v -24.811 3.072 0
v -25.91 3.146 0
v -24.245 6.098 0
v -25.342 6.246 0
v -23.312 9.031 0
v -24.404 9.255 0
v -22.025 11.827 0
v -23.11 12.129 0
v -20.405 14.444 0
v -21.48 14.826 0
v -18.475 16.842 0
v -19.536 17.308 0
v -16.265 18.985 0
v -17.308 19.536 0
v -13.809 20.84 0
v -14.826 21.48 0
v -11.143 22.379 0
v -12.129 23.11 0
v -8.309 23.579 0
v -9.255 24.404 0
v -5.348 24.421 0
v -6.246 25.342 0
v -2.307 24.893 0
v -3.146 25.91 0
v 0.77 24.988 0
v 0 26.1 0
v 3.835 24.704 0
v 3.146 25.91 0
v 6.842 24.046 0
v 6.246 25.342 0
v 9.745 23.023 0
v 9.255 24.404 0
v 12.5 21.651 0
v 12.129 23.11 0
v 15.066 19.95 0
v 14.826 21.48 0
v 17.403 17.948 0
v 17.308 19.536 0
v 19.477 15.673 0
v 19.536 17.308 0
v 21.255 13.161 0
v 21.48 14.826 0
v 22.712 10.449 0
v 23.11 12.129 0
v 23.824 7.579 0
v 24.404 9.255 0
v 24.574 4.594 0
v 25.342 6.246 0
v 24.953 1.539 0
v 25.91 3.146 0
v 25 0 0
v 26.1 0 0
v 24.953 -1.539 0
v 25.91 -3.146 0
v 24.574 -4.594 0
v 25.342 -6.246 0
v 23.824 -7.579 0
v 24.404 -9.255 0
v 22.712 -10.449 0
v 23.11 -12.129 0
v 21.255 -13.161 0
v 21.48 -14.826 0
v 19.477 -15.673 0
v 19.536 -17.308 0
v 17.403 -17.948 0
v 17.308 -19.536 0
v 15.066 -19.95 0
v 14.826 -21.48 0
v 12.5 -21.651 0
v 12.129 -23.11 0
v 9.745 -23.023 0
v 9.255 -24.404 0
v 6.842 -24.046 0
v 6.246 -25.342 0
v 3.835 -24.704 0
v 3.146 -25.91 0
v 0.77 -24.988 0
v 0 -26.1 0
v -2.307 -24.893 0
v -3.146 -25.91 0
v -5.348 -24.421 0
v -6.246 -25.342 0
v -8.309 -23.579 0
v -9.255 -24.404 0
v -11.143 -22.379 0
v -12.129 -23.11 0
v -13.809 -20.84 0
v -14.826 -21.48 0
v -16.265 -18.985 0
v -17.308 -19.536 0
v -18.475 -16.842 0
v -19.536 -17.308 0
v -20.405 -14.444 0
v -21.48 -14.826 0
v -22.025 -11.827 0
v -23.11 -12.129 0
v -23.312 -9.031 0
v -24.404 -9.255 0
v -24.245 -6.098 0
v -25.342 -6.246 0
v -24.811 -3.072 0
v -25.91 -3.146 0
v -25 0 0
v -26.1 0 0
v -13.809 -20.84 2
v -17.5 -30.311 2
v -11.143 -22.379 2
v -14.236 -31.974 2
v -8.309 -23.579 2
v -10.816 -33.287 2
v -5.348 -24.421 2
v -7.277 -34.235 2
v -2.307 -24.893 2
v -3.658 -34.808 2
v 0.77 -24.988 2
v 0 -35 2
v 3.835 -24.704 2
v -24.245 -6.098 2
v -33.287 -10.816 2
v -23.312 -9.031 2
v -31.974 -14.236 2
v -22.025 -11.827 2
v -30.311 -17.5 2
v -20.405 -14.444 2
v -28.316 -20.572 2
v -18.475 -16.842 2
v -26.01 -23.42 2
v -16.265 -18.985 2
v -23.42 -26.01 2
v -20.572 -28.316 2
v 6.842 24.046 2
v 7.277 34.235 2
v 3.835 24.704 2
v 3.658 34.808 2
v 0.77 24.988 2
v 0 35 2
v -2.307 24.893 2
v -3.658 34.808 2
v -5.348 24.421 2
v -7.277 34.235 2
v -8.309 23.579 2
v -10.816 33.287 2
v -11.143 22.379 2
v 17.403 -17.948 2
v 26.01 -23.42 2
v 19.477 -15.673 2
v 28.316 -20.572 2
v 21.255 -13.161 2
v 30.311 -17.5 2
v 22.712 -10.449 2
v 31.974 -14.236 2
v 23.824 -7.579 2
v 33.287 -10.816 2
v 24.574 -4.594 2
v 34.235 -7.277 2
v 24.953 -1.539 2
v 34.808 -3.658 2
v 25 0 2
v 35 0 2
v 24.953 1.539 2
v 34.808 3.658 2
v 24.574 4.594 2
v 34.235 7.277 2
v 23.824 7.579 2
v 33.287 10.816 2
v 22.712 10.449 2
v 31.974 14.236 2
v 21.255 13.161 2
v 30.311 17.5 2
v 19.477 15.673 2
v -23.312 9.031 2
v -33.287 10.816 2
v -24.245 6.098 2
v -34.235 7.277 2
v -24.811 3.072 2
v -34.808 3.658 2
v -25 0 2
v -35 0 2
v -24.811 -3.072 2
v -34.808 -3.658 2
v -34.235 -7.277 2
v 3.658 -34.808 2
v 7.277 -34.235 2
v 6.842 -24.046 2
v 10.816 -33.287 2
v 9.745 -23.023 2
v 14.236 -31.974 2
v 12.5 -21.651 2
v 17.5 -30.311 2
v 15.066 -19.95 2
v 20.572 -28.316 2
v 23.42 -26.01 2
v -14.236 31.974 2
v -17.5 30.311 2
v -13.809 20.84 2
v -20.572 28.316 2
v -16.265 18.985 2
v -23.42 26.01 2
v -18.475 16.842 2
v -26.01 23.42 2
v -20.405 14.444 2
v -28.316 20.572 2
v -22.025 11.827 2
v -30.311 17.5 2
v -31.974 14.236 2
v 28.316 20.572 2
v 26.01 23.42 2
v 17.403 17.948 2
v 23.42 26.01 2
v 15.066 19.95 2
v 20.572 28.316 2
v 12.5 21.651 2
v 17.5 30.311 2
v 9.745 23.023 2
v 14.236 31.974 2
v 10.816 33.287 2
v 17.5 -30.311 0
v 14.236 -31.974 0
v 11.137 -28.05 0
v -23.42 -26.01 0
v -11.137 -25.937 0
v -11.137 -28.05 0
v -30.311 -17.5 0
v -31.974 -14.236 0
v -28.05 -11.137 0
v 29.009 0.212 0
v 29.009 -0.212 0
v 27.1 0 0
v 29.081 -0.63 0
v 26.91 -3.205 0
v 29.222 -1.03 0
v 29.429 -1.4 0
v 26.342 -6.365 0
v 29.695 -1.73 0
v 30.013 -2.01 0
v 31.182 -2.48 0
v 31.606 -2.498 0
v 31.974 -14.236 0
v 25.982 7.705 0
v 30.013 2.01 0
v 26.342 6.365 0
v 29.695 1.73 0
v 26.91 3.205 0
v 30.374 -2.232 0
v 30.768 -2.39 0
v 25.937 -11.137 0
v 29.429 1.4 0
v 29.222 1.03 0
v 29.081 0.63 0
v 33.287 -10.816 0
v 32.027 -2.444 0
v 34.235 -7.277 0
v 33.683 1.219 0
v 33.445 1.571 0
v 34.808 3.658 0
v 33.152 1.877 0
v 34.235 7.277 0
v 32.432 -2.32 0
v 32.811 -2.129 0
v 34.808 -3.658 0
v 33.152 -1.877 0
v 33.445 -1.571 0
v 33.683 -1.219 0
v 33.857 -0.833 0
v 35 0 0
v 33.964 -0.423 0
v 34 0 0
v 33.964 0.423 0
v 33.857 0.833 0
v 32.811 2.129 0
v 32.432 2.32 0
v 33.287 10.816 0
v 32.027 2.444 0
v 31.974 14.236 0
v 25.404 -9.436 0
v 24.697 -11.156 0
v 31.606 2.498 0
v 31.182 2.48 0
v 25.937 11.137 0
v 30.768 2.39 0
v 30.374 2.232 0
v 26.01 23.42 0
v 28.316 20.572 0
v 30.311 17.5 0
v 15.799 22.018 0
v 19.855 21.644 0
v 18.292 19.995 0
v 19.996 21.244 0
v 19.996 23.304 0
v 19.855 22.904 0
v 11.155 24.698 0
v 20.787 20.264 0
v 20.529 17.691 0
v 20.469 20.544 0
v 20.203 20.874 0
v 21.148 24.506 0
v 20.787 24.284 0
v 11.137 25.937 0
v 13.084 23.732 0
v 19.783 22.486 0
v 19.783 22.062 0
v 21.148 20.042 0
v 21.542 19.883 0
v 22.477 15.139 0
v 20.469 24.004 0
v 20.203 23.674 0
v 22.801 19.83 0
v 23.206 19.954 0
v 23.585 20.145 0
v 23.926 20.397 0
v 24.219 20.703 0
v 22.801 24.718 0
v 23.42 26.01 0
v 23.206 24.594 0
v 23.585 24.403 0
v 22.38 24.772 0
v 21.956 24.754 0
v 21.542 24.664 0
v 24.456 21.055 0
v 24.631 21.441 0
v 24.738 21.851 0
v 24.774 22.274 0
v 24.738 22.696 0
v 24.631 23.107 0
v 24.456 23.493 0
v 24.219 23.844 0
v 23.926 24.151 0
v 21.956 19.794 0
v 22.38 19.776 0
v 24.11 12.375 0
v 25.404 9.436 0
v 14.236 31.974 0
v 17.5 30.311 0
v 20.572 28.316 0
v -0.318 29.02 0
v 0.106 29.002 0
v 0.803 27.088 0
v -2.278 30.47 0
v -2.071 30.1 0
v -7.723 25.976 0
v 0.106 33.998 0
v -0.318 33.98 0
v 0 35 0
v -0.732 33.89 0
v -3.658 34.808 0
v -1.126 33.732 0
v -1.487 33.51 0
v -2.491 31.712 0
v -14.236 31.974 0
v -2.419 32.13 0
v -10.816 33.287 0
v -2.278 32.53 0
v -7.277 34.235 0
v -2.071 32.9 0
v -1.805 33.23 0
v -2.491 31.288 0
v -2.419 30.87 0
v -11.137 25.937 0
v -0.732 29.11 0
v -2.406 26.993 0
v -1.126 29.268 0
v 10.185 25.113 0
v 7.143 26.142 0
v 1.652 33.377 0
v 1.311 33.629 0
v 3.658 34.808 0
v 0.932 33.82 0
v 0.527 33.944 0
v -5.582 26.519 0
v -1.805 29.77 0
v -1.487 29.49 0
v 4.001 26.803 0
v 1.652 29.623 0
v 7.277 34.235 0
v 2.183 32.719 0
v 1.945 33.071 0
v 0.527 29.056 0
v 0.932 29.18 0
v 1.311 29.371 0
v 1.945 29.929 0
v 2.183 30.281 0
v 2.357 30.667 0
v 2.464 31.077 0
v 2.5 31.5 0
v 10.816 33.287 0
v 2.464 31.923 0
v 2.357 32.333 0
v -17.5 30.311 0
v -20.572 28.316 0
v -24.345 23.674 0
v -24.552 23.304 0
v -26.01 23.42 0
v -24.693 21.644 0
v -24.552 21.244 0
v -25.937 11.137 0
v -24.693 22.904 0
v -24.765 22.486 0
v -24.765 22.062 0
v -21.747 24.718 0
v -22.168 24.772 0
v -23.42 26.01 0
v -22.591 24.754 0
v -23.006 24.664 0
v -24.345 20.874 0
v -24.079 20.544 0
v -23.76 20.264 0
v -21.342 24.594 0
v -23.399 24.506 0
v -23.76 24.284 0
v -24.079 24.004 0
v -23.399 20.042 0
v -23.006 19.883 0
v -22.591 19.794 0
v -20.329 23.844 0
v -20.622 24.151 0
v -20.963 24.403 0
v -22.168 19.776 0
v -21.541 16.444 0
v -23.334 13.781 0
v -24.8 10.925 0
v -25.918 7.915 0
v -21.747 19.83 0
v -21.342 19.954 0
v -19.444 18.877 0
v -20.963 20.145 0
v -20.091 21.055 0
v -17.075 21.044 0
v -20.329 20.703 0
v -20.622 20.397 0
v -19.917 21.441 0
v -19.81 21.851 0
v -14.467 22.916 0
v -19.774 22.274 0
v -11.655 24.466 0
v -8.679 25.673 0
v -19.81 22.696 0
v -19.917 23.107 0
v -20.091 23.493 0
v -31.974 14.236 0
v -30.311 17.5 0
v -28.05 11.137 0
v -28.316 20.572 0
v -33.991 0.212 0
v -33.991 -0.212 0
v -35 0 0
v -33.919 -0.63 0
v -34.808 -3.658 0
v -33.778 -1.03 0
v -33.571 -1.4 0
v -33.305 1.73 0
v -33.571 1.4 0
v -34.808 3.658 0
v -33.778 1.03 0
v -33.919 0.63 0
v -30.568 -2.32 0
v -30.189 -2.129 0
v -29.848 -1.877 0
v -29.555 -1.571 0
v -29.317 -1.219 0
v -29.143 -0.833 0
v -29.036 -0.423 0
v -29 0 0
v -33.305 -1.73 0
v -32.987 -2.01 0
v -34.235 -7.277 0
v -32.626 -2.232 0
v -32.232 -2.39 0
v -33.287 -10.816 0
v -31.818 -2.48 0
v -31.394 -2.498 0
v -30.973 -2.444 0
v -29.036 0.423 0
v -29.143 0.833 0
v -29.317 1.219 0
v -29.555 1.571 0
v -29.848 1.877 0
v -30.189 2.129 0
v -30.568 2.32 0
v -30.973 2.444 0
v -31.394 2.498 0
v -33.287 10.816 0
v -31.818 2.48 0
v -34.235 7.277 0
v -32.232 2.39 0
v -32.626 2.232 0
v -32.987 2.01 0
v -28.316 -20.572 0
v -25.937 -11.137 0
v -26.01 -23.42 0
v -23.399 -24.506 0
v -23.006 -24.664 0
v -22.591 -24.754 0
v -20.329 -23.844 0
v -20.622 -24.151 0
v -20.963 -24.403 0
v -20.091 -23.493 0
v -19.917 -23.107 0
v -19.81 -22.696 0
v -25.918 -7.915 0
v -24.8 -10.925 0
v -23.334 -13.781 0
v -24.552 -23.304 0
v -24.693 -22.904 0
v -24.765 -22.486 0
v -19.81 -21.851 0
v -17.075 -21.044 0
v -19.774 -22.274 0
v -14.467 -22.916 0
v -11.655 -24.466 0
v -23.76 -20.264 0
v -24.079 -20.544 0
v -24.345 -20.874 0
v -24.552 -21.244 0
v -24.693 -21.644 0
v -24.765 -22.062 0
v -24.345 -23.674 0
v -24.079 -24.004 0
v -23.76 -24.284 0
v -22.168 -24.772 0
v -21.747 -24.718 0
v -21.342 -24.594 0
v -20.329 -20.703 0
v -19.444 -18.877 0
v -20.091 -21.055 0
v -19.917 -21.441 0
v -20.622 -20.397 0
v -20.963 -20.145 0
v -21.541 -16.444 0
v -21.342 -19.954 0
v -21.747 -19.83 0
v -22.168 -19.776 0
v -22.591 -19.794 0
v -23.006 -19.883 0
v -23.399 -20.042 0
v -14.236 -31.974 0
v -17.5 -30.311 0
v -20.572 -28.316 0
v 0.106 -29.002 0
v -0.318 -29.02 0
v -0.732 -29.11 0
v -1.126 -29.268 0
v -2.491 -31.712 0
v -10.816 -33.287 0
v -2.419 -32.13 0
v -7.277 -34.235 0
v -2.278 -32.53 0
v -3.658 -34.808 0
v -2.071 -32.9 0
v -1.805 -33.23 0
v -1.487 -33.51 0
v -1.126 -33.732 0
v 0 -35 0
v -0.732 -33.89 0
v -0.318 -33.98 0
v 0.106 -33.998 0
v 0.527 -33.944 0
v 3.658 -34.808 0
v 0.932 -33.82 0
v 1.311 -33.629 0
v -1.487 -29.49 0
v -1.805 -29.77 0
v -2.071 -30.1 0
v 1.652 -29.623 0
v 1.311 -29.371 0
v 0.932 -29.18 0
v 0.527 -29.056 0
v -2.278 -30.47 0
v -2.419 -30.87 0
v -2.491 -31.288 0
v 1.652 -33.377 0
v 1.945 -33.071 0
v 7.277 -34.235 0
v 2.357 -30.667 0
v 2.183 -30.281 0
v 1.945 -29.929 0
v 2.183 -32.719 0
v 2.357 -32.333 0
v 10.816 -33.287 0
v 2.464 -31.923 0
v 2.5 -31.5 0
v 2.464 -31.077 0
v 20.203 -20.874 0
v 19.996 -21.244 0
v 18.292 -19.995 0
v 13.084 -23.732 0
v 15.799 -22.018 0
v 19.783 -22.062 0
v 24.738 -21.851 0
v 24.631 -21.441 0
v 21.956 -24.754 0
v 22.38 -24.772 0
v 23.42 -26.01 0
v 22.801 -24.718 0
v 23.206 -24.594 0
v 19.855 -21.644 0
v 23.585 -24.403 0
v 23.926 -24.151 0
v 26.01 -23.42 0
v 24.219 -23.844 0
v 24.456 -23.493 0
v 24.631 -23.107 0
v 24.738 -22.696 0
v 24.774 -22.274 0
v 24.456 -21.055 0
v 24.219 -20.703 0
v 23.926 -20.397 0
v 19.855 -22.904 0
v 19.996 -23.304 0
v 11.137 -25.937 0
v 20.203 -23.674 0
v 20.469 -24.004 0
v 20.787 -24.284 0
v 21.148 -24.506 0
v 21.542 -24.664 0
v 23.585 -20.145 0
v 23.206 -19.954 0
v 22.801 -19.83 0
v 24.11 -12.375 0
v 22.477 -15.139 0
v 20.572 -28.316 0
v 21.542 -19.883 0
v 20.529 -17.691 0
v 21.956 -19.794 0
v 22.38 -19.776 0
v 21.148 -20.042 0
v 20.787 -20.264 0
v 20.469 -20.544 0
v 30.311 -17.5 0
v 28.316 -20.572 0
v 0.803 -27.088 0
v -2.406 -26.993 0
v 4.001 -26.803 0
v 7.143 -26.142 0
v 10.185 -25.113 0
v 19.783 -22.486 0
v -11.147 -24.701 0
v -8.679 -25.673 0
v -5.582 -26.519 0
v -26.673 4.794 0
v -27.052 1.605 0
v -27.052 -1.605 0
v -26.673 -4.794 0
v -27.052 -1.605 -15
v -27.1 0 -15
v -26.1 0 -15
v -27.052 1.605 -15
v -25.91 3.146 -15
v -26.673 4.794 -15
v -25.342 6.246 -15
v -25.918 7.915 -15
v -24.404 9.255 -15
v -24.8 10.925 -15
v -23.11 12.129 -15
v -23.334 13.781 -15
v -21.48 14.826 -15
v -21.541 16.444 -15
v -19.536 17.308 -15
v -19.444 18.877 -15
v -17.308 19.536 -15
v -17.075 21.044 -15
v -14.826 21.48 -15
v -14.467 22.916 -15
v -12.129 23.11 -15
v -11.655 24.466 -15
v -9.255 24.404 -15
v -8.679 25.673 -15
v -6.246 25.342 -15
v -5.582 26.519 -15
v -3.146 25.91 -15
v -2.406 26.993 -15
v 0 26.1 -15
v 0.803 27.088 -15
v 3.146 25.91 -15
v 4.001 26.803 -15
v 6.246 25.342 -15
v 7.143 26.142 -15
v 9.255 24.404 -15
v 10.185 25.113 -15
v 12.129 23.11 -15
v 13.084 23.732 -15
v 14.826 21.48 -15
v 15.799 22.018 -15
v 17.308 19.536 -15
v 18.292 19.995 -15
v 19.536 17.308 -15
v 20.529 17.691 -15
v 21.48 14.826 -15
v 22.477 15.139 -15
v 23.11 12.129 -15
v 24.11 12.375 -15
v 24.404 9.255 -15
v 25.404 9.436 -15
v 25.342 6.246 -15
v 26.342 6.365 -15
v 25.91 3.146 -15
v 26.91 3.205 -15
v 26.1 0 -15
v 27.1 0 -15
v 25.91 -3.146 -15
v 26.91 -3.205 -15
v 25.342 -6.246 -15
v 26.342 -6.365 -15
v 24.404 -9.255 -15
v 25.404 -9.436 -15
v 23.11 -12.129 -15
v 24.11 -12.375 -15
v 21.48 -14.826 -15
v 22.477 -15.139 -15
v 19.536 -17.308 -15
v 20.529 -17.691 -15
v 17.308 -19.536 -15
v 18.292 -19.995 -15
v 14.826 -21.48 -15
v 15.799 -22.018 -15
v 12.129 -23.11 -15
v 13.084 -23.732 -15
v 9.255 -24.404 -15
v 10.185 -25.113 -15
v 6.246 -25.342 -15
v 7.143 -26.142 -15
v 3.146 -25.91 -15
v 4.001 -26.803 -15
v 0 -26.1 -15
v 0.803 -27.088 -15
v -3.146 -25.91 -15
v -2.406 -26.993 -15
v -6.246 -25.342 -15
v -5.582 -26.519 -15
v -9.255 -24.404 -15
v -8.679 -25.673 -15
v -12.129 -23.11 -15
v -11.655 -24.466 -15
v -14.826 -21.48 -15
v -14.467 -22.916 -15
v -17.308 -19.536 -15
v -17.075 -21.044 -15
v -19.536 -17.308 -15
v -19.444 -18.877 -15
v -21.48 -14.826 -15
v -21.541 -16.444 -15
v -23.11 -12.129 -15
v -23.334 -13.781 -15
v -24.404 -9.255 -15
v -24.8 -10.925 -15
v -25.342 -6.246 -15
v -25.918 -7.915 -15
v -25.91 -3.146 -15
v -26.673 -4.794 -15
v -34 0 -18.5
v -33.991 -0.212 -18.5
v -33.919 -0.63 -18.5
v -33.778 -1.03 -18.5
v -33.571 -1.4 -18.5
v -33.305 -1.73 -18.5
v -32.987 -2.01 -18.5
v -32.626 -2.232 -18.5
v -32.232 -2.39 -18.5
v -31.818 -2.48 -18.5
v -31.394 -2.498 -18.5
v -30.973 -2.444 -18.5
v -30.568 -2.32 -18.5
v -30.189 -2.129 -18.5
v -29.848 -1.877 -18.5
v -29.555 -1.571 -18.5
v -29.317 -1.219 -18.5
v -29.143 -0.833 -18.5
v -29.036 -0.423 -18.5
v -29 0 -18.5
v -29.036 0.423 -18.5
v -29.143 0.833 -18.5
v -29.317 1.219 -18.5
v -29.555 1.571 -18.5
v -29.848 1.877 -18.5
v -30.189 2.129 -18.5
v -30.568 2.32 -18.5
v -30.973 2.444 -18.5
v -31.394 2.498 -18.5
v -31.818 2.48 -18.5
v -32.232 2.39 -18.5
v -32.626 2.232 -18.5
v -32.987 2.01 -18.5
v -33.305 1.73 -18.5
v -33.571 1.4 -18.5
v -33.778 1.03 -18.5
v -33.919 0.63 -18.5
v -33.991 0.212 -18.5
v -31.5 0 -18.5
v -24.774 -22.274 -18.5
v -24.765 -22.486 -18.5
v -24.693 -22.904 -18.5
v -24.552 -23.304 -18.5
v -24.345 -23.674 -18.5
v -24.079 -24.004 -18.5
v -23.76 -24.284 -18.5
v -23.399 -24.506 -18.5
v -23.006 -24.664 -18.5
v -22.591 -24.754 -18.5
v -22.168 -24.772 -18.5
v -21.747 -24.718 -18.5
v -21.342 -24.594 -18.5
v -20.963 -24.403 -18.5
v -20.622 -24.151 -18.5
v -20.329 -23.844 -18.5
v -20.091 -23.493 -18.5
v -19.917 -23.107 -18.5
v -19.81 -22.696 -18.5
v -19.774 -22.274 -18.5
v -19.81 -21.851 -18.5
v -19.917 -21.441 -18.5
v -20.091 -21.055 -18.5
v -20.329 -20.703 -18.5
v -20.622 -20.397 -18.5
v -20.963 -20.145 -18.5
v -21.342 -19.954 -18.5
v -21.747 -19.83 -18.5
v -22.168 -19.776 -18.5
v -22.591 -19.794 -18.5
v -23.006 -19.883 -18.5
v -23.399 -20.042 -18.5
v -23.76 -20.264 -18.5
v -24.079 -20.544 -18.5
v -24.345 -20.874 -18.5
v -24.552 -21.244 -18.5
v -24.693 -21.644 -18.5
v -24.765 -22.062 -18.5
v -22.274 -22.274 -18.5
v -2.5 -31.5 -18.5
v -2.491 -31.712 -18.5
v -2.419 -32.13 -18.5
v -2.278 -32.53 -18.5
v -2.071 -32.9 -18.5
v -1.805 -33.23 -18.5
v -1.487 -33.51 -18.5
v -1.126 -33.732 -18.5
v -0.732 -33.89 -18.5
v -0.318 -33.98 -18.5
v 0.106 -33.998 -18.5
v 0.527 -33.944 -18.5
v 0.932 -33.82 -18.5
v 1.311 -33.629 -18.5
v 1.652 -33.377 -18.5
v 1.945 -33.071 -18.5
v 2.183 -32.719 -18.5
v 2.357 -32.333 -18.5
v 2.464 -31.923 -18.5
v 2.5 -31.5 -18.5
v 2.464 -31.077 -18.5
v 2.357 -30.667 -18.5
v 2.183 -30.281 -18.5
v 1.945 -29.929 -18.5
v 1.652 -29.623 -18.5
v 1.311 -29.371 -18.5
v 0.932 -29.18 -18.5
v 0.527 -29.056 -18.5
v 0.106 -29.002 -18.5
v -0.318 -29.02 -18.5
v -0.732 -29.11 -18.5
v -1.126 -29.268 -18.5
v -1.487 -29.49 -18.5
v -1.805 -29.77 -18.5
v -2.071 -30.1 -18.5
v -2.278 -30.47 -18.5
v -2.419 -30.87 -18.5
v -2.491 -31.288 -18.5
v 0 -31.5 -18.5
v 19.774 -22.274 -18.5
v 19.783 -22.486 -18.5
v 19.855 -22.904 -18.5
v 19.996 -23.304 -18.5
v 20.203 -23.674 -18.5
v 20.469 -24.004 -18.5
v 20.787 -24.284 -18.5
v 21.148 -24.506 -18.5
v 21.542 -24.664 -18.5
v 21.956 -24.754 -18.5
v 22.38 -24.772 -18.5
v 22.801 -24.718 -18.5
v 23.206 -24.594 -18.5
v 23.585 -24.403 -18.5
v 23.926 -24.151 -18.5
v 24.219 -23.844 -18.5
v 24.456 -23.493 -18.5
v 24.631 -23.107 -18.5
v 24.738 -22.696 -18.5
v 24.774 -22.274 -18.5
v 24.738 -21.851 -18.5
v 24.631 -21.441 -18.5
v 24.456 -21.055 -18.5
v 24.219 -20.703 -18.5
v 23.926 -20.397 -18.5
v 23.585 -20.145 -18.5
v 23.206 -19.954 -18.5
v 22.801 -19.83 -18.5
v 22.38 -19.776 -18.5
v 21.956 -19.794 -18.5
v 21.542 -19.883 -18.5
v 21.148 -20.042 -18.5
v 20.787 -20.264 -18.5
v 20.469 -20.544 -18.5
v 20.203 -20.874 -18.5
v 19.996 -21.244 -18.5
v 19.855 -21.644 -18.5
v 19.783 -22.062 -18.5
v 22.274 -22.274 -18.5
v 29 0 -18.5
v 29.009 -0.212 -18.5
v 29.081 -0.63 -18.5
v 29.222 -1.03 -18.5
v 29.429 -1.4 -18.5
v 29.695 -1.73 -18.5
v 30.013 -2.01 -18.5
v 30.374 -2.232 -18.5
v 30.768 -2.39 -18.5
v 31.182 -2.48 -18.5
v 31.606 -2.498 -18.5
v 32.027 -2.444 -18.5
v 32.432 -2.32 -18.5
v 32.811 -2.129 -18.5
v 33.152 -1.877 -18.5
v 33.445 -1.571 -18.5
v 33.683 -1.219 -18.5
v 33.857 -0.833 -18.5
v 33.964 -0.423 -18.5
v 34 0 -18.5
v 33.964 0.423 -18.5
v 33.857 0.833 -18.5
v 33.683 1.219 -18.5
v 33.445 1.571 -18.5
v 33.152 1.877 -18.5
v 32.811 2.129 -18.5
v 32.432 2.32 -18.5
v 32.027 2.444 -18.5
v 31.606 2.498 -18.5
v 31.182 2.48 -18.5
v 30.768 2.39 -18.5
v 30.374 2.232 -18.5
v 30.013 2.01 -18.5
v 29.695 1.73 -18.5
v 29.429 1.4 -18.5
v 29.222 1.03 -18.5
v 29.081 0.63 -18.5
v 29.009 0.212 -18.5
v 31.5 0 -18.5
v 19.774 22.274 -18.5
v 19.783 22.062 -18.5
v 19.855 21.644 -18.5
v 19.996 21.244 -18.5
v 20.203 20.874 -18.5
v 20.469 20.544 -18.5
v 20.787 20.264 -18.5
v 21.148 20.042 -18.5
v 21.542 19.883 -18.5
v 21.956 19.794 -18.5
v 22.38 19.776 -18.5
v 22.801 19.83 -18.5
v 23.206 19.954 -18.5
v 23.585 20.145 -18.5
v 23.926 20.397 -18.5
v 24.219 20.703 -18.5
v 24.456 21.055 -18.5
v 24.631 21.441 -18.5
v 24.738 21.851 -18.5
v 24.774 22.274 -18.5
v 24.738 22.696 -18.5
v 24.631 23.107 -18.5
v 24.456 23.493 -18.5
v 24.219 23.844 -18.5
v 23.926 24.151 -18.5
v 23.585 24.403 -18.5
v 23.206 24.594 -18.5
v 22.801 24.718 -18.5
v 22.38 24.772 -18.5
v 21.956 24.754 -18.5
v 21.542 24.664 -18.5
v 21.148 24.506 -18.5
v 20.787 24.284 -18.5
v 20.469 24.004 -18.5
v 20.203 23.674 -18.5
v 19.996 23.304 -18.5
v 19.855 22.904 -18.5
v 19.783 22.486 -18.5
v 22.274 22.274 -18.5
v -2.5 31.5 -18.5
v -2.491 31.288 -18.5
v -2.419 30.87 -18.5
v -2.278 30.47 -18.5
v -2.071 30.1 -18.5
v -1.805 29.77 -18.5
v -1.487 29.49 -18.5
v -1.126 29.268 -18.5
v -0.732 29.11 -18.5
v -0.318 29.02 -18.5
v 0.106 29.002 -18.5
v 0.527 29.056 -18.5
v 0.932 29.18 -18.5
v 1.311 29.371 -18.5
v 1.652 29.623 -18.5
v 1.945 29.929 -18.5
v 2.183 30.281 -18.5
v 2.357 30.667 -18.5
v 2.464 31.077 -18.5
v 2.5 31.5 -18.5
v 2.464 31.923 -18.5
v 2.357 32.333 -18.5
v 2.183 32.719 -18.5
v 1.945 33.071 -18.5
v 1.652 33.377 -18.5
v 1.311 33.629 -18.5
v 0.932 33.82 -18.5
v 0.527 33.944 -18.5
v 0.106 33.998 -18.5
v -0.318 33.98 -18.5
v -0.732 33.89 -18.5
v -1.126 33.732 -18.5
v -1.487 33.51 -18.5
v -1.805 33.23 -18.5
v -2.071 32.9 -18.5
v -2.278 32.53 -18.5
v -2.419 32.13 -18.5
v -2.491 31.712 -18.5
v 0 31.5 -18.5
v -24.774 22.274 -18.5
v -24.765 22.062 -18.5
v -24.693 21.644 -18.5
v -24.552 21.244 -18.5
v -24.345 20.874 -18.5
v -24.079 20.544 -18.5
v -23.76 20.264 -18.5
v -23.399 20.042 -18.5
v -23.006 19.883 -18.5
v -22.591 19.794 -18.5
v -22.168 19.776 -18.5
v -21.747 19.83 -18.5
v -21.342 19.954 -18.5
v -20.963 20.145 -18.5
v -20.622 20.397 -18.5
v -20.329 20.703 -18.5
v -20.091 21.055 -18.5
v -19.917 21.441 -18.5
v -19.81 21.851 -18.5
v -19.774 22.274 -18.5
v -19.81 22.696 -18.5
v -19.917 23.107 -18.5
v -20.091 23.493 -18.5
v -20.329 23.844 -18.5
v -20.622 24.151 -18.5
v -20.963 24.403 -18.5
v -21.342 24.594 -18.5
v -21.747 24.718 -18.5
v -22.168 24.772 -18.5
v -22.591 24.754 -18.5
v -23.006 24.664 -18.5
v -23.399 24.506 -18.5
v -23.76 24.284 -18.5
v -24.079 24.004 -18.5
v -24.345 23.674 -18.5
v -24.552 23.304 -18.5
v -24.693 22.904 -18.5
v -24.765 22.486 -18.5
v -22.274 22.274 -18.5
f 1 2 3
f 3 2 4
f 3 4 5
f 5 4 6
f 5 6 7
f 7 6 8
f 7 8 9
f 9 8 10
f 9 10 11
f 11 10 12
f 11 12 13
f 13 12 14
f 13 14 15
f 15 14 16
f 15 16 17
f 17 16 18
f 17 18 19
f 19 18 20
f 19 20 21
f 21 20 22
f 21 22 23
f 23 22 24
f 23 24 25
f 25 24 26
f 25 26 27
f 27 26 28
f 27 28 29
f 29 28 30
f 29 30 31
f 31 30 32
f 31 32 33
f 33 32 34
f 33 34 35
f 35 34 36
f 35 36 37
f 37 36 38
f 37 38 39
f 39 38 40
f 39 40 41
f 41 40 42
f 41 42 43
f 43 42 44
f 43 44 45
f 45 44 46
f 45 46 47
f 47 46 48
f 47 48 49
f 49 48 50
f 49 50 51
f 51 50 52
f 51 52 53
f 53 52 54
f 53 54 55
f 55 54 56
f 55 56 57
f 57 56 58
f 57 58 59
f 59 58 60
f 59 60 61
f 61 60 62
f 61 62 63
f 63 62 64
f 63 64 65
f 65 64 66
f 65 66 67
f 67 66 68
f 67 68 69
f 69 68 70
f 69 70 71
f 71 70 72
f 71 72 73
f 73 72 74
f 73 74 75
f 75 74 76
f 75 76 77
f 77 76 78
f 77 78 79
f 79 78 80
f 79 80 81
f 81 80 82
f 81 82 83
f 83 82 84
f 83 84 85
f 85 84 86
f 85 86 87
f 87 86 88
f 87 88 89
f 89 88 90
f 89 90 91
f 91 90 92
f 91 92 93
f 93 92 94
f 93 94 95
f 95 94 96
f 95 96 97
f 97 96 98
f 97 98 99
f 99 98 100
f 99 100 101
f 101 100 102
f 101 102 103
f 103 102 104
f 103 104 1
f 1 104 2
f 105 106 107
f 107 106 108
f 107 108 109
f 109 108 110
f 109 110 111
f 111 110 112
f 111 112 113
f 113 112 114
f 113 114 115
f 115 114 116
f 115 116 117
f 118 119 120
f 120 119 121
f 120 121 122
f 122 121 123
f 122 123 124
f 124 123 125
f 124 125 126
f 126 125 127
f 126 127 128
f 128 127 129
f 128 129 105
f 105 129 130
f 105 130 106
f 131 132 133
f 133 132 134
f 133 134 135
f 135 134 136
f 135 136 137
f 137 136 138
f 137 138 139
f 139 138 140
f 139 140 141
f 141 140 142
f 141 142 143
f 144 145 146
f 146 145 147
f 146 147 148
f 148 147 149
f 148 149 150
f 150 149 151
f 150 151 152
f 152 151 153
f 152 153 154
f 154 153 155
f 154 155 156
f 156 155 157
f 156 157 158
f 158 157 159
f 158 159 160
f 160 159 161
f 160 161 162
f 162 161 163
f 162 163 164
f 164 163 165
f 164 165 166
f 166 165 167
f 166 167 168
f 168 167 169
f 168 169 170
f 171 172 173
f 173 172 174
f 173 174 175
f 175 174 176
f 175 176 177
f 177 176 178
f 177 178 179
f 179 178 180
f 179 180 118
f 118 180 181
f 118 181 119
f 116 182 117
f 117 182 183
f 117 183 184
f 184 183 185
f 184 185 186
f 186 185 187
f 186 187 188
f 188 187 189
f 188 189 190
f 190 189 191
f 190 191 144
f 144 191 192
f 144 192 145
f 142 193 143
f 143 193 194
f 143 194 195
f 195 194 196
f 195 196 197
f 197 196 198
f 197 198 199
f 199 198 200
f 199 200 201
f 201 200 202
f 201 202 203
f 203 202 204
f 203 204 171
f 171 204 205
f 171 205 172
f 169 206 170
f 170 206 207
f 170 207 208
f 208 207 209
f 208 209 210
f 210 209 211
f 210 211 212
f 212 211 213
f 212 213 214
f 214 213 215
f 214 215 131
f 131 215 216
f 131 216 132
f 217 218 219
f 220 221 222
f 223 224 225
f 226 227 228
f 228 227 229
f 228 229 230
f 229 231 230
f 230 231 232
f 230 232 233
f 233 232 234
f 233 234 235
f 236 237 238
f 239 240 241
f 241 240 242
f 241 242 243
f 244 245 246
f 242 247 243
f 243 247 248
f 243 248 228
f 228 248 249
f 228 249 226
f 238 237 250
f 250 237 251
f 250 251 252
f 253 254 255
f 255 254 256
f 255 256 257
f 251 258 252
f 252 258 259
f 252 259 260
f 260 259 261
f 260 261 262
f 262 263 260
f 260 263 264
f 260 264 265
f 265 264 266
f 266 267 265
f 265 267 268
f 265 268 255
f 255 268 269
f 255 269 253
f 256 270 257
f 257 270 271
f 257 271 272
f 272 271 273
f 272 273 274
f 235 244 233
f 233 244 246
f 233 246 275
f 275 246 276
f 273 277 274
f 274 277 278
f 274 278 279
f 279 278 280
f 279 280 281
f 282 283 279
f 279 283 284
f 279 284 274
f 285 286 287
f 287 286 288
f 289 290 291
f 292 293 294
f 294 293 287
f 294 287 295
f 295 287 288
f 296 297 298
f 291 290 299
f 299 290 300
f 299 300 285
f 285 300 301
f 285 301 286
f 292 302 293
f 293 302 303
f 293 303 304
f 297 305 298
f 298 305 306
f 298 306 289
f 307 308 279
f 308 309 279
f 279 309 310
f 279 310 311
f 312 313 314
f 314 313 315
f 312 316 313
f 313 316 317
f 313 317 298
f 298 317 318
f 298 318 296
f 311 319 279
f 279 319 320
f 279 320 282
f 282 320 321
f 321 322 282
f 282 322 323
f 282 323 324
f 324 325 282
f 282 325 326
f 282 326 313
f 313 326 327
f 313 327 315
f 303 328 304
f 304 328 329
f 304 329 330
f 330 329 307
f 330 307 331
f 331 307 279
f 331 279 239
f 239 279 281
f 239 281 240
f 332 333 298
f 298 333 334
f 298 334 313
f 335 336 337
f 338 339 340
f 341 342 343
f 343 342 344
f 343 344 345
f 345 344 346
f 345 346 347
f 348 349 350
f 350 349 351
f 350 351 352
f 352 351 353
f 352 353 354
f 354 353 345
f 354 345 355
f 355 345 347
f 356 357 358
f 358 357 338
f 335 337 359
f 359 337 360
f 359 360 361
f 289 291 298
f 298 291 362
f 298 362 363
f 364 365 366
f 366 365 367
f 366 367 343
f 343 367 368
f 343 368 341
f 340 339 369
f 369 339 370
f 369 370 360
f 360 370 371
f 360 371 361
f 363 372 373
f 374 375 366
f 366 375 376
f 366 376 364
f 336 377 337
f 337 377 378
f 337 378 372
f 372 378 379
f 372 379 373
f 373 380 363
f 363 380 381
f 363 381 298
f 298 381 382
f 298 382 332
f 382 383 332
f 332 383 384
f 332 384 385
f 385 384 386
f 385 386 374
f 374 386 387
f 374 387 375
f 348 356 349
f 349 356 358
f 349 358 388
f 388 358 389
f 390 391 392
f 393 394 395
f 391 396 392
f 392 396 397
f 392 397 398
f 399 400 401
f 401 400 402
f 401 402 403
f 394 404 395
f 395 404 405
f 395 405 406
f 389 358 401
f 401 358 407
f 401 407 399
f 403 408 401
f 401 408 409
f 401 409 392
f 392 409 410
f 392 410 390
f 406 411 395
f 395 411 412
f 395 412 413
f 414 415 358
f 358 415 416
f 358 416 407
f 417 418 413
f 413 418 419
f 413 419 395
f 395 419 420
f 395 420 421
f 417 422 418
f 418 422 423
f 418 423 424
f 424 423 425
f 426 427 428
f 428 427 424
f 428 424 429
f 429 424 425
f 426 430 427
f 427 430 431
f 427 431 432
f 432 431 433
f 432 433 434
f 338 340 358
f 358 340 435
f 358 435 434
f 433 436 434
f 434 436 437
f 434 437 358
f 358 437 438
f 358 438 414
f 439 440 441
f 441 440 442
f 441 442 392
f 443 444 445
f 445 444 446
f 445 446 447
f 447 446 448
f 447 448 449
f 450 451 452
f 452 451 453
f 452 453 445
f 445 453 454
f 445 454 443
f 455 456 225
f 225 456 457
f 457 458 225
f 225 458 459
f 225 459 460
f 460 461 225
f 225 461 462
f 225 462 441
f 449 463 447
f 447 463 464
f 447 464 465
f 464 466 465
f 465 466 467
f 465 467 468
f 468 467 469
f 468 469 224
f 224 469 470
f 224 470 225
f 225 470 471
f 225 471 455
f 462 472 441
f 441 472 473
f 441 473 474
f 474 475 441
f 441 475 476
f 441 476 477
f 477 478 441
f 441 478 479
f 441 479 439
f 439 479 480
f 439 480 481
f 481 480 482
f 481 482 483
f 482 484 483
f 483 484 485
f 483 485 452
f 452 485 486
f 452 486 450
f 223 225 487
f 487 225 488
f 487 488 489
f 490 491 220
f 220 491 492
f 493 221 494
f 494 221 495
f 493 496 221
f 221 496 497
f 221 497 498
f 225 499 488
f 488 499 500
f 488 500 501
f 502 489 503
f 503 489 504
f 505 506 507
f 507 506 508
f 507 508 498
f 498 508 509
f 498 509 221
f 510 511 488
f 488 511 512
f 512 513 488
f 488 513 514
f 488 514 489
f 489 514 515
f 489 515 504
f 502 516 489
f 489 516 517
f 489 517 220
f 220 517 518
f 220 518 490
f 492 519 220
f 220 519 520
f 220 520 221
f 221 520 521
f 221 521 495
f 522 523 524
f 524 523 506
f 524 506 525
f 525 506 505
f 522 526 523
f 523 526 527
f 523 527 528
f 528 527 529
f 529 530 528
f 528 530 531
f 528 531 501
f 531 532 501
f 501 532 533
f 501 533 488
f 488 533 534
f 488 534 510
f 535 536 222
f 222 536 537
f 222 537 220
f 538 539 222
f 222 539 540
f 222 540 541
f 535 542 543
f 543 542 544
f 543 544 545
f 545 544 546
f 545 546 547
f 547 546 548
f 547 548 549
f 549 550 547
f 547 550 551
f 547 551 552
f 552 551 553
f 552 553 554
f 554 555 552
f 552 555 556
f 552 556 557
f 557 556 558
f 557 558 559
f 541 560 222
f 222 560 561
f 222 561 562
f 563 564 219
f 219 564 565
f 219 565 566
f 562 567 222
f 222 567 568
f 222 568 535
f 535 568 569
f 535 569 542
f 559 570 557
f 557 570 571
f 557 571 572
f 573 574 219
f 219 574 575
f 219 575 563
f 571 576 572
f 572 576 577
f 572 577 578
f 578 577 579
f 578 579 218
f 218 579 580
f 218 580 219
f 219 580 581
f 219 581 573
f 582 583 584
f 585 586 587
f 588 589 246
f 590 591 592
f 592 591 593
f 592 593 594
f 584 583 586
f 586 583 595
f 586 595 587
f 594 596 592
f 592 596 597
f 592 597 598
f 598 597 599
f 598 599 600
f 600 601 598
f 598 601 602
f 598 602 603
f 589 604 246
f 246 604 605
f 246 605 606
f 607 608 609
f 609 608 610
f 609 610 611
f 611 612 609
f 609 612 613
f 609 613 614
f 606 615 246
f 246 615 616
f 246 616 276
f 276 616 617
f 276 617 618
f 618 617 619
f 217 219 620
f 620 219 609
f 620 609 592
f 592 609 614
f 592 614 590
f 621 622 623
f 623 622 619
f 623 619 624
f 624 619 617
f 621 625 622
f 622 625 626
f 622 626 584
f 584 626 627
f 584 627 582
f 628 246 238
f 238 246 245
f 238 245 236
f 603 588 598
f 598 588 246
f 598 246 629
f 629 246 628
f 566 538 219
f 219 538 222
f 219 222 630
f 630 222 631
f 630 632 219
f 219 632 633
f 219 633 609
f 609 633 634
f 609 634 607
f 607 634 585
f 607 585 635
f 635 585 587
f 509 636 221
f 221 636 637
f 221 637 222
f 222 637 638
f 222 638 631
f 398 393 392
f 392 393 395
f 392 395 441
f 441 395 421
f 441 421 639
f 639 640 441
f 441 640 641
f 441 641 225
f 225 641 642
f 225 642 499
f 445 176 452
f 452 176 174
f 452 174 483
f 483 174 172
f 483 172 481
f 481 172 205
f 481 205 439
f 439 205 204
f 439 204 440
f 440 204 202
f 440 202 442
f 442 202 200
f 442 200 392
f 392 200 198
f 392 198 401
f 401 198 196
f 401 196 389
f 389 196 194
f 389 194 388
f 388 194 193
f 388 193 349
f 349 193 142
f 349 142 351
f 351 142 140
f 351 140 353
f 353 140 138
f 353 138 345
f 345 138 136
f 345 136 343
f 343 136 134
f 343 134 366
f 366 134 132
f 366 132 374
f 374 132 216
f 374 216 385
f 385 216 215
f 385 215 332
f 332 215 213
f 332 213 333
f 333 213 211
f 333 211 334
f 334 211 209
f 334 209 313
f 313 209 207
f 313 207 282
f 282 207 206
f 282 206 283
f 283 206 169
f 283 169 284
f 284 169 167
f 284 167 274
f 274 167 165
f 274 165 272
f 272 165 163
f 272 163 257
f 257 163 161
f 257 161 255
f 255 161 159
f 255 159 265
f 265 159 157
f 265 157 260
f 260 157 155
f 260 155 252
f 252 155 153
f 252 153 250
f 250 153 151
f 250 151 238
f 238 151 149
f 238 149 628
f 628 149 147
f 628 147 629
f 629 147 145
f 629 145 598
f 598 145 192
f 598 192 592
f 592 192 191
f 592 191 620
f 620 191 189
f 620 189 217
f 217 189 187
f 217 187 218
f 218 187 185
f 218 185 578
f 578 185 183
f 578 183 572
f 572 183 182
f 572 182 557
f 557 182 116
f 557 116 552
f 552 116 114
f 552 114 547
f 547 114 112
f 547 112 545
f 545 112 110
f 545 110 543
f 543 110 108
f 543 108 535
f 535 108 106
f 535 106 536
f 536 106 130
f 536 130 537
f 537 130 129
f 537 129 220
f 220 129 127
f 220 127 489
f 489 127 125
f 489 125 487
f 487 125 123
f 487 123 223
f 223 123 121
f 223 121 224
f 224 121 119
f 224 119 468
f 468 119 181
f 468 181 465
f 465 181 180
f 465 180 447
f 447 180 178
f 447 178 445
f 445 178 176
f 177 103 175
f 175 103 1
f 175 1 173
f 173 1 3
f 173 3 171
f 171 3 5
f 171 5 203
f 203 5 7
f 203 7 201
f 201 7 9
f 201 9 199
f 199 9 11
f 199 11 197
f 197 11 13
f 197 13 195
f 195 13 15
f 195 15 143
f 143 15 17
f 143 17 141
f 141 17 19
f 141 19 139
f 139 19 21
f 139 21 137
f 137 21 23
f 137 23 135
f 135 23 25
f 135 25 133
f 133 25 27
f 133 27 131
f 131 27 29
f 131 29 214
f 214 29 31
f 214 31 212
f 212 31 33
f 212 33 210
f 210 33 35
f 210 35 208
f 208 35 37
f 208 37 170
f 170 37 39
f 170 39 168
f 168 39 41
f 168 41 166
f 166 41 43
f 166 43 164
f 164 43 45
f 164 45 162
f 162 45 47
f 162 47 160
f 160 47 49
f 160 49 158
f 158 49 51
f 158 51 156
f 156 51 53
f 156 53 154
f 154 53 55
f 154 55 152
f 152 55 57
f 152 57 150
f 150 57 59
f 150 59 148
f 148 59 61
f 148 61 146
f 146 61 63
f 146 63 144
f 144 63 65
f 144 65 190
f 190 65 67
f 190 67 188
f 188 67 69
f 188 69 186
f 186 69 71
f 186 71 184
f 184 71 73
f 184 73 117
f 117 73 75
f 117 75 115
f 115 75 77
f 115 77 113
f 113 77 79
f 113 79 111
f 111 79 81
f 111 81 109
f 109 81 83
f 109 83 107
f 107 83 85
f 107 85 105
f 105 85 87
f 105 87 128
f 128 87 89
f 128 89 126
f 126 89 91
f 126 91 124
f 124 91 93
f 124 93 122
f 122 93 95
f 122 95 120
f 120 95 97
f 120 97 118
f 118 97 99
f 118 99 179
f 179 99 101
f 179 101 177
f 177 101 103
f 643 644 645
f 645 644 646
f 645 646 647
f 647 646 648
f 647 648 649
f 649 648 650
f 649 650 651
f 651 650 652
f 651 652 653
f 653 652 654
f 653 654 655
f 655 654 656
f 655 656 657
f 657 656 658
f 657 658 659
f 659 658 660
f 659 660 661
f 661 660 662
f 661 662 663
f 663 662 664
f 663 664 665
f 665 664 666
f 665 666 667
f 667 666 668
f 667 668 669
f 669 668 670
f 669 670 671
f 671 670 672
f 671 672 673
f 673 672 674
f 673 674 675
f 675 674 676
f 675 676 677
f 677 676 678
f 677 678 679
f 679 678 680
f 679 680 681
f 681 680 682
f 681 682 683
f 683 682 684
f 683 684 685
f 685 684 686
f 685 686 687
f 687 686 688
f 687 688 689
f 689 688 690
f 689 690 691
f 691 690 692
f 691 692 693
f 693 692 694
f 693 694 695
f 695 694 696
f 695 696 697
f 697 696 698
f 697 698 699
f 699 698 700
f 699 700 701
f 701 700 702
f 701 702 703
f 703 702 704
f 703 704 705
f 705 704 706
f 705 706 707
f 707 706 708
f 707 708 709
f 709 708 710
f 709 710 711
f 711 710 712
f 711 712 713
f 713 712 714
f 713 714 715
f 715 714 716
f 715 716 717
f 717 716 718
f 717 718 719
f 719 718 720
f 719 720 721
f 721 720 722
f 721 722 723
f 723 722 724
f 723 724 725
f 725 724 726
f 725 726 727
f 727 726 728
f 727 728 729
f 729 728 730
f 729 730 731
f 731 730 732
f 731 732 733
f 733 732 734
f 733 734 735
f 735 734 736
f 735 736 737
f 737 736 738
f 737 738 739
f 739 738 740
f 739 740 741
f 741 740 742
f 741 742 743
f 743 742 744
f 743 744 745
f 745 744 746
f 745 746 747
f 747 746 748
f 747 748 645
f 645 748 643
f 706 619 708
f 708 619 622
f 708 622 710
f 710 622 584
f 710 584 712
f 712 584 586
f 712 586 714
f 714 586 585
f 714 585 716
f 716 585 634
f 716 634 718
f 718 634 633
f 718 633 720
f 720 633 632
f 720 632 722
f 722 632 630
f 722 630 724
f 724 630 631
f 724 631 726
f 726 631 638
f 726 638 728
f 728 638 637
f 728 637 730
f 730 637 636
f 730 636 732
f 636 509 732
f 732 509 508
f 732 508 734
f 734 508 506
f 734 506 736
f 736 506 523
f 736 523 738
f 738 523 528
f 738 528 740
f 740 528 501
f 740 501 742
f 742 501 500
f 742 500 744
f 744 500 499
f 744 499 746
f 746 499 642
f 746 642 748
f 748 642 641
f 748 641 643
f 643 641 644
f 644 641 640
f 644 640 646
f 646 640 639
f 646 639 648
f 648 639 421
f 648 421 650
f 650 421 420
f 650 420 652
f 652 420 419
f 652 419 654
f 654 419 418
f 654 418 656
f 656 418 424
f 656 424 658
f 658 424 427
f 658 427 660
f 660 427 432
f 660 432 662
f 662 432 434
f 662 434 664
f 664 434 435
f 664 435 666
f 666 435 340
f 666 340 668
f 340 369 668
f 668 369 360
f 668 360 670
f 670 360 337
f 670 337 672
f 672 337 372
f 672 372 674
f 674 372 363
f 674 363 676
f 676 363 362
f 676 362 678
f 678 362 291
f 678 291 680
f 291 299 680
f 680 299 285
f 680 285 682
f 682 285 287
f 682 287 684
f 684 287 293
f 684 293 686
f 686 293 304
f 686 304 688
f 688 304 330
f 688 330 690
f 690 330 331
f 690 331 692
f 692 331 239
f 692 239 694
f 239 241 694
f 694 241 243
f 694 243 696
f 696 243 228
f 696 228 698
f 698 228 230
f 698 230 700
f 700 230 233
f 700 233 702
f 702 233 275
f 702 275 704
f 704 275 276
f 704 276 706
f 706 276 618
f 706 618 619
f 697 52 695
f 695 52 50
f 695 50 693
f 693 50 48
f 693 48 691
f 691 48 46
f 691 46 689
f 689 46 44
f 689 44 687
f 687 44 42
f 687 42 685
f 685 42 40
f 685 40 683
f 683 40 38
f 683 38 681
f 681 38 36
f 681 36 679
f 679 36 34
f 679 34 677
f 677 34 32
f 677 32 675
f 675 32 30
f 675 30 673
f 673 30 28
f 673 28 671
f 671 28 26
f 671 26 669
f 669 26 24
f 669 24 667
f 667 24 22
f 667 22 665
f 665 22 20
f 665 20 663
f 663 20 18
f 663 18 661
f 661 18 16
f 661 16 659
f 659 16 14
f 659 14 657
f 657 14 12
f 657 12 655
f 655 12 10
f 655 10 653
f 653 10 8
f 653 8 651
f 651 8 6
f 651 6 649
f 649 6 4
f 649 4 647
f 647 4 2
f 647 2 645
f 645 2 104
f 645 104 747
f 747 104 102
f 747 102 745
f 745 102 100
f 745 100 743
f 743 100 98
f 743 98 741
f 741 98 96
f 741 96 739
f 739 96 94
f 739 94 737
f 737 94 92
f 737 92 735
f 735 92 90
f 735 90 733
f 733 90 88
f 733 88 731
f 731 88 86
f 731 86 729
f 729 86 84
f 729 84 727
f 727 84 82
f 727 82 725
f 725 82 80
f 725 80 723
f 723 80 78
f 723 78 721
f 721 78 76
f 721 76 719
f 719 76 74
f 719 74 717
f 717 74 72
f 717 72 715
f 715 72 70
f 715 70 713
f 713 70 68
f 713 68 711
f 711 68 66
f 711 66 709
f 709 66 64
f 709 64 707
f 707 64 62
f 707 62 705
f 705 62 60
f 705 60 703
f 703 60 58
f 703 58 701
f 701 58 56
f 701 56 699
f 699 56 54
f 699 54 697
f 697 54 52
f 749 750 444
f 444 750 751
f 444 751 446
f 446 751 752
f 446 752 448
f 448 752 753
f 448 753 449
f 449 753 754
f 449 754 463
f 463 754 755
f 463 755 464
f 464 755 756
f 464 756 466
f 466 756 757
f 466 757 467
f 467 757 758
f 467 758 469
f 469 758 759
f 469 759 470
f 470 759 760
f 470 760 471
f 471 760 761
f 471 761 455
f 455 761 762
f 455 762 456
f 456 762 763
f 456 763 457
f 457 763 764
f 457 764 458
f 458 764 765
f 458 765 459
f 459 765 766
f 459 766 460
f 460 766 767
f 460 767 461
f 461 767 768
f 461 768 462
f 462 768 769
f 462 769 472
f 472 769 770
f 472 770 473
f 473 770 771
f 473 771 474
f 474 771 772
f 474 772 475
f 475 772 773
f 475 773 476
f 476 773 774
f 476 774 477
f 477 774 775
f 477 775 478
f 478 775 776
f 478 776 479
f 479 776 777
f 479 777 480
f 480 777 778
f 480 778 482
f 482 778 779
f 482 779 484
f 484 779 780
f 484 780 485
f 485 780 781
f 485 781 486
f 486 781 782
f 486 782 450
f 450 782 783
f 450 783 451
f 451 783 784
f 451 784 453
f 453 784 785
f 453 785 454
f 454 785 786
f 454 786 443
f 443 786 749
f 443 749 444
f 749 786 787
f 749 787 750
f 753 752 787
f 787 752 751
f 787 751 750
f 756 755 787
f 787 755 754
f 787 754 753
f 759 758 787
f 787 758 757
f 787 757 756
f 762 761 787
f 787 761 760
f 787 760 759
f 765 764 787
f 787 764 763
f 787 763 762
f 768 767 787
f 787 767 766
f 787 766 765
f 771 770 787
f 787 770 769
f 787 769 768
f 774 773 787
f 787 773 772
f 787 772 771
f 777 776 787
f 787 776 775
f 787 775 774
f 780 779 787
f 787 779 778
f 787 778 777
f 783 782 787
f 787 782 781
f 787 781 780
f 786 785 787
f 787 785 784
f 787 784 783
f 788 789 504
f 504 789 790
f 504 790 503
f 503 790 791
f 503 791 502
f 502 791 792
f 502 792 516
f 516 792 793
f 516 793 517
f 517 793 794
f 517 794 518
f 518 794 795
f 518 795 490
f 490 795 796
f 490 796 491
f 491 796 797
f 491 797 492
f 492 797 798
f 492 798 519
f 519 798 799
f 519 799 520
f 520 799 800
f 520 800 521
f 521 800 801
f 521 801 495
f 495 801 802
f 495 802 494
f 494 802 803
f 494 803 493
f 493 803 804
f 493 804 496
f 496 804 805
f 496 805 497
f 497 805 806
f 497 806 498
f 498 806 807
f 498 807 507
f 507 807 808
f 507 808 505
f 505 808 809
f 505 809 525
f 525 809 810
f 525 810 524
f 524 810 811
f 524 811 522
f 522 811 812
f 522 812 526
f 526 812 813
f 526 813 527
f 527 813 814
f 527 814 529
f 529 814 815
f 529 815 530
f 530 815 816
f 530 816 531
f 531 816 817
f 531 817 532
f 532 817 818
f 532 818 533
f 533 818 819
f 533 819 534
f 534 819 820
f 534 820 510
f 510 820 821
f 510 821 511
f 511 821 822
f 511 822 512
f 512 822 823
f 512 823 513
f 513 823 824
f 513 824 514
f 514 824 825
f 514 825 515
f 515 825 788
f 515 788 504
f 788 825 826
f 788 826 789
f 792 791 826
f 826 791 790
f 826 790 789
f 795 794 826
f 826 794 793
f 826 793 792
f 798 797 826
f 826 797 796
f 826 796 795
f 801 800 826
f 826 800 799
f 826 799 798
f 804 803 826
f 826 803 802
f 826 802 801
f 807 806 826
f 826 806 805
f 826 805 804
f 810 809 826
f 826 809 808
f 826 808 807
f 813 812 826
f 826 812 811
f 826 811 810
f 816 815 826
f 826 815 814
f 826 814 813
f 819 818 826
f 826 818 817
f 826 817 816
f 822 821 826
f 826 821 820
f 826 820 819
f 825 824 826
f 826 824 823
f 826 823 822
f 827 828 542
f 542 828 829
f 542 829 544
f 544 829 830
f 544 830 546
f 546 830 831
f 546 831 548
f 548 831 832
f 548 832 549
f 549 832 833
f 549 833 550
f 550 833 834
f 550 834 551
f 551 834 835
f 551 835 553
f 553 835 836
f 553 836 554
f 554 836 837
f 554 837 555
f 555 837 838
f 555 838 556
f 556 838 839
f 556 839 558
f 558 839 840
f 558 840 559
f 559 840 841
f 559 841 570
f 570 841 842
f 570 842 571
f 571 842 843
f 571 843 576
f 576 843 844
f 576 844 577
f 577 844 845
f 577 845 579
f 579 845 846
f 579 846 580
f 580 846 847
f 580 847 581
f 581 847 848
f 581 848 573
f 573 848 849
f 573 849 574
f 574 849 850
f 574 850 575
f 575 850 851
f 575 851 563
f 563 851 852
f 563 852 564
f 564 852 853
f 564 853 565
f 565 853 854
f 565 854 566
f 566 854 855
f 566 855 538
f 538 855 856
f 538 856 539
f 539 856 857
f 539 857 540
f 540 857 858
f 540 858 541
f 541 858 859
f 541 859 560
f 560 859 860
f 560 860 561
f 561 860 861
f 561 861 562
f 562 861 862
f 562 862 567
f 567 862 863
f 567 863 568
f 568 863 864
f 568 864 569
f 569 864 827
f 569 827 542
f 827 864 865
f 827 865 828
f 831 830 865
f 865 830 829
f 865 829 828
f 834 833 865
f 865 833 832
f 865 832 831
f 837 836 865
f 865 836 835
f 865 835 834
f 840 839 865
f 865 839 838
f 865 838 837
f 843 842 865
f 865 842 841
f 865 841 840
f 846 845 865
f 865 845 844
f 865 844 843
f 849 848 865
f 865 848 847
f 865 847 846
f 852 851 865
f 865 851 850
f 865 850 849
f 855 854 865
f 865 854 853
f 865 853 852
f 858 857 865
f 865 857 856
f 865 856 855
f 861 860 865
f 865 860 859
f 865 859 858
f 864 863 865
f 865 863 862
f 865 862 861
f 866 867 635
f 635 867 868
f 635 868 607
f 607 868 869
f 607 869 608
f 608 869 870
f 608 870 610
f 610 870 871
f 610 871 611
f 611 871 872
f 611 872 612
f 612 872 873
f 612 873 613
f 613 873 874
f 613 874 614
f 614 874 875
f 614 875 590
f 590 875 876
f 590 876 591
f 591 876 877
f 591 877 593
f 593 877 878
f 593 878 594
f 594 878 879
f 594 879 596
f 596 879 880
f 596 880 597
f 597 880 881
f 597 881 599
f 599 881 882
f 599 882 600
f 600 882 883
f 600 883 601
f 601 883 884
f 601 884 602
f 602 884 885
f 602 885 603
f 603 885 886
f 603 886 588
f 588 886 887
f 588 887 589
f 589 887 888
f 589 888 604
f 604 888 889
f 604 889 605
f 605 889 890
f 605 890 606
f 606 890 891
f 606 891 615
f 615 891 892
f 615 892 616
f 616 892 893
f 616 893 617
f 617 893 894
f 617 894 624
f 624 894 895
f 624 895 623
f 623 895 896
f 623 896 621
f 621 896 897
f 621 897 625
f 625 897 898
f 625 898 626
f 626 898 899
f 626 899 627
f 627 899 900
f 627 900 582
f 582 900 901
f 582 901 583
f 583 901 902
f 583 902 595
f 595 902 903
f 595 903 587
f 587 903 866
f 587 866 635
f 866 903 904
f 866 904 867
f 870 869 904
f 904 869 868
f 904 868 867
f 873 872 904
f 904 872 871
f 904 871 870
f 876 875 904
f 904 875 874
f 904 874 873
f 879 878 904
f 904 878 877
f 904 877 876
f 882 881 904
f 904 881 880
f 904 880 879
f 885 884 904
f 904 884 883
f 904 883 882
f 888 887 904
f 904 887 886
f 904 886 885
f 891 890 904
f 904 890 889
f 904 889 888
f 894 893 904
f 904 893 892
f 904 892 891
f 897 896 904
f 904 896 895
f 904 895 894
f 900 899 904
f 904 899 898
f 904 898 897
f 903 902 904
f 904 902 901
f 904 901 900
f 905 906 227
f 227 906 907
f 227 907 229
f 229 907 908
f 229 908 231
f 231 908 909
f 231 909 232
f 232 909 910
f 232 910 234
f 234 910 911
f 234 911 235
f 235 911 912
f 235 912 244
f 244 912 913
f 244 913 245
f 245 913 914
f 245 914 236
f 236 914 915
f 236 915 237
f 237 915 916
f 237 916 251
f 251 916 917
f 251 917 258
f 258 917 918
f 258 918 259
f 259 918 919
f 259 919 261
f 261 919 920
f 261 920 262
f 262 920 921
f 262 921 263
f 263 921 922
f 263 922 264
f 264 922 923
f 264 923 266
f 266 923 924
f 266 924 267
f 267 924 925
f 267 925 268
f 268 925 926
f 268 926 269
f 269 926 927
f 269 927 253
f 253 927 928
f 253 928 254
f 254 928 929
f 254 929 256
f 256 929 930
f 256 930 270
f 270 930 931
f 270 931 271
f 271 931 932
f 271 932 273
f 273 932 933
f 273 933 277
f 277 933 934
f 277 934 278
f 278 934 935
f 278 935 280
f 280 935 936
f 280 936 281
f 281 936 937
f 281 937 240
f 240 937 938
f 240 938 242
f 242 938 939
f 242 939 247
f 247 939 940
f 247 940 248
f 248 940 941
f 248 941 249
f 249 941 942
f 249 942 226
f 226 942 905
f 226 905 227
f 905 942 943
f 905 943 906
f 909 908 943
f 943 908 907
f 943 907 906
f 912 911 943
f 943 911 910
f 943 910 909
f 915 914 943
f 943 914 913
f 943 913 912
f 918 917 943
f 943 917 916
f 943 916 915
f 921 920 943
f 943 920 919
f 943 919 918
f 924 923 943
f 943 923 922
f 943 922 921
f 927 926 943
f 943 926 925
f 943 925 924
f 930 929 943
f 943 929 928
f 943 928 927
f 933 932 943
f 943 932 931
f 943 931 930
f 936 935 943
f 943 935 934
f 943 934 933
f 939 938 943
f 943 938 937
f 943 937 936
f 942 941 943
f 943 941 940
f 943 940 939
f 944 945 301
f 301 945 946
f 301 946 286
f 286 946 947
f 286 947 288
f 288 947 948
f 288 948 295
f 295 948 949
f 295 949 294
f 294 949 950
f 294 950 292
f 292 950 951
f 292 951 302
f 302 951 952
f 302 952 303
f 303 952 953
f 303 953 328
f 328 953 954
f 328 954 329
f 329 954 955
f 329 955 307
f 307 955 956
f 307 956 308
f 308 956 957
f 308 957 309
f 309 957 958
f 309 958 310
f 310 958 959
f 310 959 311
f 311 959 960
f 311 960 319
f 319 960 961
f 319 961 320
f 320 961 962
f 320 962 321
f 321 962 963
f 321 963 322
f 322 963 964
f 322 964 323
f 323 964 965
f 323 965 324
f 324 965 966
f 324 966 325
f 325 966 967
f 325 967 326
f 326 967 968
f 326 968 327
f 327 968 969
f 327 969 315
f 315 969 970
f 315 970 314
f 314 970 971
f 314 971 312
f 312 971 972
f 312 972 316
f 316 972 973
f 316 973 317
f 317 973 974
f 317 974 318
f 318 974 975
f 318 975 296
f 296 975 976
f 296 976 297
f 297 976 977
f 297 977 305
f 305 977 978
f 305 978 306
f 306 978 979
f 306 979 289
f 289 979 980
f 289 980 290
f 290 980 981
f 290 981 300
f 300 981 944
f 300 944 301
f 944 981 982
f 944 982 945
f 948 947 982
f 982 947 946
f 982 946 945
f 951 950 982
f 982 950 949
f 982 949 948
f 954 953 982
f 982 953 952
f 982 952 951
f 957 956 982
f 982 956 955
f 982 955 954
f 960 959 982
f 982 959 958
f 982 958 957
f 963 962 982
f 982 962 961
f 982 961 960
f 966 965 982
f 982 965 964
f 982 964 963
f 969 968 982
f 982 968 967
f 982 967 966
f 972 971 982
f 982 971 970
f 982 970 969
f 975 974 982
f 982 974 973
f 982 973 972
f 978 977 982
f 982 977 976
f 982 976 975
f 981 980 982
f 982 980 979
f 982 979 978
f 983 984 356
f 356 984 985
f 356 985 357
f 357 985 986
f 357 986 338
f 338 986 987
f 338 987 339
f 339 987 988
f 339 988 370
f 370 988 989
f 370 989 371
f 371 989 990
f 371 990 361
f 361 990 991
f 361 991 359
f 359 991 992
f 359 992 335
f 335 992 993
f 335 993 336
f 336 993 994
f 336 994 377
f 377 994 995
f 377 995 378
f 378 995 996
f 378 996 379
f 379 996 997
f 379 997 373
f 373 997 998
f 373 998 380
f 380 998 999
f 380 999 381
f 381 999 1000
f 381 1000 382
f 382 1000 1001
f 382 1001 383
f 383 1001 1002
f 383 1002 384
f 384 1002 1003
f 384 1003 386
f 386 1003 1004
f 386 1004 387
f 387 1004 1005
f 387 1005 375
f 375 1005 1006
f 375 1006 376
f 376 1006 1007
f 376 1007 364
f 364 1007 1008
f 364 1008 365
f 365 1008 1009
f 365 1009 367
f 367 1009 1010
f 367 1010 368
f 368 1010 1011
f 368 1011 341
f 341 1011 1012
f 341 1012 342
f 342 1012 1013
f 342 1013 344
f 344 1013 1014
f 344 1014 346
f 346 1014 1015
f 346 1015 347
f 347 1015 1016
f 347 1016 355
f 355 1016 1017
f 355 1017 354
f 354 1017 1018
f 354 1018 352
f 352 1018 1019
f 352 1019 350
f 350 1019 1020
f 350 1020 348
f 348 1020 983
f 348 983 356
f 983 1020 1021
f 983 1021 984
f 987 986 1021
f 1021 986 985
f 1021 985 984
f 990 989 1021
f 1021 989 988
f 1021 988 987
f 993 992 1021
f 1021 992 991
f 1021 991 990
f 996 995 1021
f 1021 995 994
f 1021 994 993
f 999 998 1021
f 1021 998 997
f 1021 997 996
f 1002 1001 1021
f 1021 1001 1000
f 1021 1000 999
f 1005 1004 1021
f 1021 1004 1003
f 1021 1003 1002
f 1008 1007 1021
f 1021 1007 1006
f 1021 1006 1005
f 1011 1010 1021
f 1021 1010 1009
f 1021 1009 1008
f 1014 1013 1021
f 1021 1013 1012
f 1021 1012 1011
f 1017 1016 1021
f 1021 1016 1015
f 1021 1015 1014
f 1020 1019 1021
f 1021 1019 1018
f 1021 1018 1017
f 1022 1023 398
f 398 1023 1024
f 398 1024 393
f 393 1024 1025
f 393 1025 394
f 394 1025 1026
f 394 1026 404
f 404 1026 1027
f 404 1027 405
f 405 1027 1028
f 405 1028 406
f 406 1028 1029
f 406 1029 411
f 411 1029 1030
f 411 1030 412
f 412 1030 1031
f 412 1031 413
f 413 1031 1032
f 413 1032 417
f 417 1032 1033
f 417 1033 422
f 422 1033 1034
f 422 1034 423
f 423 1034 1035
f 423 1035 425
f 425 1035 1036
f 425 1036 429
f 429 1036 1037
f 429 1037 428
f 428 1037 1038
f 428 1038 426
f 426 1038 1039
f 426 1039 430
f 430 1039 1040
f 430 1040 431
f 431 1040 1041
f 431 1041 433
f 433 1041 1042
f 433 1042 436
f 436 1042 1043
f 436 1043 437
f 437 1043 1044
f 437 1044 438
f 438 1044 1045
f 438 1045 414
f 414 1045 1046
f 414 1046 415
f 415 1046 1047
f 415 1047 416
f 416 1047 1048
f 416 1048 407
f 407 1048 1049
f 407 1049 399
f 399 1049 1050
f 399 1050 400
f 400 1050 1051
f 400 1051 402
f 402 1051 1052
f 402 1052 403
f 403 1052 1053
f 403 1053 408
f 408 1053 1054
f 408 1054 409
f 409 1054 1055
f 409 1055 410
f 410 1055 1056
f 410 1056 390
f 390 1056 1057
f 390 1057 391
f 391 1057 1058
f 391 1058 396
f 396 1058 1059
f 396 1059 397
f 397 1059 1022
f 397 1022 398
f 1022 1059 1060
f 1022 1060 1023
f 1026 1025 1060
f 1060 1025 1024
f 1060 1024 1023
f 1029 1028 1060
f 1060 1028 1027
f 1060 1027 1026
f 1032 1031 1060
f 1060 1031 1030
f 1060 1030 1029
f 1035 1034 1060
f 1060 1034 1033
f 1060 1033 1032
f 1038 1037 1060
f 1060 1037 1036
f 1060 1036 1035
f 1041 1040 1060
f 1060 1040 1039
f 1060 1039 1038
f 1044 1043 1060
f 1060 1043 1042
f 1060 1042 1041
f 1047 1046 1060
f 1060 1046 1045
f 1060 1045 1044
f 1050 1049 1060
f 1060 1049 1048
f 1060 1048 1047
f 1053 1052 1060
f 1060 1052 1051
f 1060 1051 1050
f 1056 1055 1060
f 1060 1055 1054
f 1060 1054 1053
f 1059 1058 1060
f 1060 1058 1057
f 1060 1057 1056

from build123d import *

# Parameters (mm, degrees)
CROQUIS1_R              = 35
CROQUIS1_R_2            = 25
SALIENTE_EXTRUIR1_DEPTH = 2
CROQUIS2_R              = 27.1
CROQUIS2_R_2            = 26.1
SALIENTE_EXTRUIR3_DEPTH = 15
CROQUIS5_R              = 2.5
SALIENTE_EXTRUIR5_DEPTH = 18.5


with BuildPart() as part:
    # Croquis1 → Saliente-Extruir1 (new body)
    with BuildSketch(Plane.XY):
        Circle(CROQUIS1_R)
        Circle(CROQUIS1_R_2, mode=Mode.SUBTRACT)
    extrude(amount=SALIENTE_EXTRUIR1_DEPTH)

    # Croquis2 → Saliente-Extruir3 (add)
    with BuildSketch(Plane(origin=(0, 0, 0), x_dir=(-1, 0, 0), z_dir=(0, 0, -1))):
        with Locations(Location((0, 0, 0), (0, 0, 180))):
            Circle(CROQUIS2_R)
        Circle(CROQUIS2_R_2, mode=Mode.SUBTRACT)
    extrude(amount=SALIENTE_EXTRUIR3_DEPTH)

    # Croquis5 → Saliente-Extruir5 (add)
    with BuildSketch(Plane(origin=(0, 0, 0), x_dir=(-1, 0, 0), z_dir=(0, 0, -1))):
        with Locations(Location((31.5, 0, 0), (0, 0, 180))):
            Circle(CROQUIS5_R)
        with Locations(Location((22.273863607, -22.273863607, 0), (0, 0, 180))):
            Circle(CROQUIS5_R)
        with Locations(Location((0, -31.5, 0), (0, 0, 180))):
            Circle(CROQUIS5_R)
        with Locations(Location((-22.273863607, -22.273863607, 0), (0, 0, 180))):
            Circle(CROQUIS5_R)
        with Locations(Location((-31.5, 0, 0), (0, 0, 180))):
            Circle(CROQUIS5_R)
        with Locations(Location((-22.273863607, 22.273863607, 0), (0, 0, 180))):
            Circle(CROQUIS5_R)
        with Locations(Location((0, 31.5, 0), (0, 0, 180))):
            Circle(CROQUIS5_R)
        with Locations(Location((22.273863607, 22.273863607, 0), (0, 0, 180))):
            Circle(CROQUIS5_R)
    extrude(amount=SALIENTE_EXTRUIR5_DEPTH)


solid = part.part
